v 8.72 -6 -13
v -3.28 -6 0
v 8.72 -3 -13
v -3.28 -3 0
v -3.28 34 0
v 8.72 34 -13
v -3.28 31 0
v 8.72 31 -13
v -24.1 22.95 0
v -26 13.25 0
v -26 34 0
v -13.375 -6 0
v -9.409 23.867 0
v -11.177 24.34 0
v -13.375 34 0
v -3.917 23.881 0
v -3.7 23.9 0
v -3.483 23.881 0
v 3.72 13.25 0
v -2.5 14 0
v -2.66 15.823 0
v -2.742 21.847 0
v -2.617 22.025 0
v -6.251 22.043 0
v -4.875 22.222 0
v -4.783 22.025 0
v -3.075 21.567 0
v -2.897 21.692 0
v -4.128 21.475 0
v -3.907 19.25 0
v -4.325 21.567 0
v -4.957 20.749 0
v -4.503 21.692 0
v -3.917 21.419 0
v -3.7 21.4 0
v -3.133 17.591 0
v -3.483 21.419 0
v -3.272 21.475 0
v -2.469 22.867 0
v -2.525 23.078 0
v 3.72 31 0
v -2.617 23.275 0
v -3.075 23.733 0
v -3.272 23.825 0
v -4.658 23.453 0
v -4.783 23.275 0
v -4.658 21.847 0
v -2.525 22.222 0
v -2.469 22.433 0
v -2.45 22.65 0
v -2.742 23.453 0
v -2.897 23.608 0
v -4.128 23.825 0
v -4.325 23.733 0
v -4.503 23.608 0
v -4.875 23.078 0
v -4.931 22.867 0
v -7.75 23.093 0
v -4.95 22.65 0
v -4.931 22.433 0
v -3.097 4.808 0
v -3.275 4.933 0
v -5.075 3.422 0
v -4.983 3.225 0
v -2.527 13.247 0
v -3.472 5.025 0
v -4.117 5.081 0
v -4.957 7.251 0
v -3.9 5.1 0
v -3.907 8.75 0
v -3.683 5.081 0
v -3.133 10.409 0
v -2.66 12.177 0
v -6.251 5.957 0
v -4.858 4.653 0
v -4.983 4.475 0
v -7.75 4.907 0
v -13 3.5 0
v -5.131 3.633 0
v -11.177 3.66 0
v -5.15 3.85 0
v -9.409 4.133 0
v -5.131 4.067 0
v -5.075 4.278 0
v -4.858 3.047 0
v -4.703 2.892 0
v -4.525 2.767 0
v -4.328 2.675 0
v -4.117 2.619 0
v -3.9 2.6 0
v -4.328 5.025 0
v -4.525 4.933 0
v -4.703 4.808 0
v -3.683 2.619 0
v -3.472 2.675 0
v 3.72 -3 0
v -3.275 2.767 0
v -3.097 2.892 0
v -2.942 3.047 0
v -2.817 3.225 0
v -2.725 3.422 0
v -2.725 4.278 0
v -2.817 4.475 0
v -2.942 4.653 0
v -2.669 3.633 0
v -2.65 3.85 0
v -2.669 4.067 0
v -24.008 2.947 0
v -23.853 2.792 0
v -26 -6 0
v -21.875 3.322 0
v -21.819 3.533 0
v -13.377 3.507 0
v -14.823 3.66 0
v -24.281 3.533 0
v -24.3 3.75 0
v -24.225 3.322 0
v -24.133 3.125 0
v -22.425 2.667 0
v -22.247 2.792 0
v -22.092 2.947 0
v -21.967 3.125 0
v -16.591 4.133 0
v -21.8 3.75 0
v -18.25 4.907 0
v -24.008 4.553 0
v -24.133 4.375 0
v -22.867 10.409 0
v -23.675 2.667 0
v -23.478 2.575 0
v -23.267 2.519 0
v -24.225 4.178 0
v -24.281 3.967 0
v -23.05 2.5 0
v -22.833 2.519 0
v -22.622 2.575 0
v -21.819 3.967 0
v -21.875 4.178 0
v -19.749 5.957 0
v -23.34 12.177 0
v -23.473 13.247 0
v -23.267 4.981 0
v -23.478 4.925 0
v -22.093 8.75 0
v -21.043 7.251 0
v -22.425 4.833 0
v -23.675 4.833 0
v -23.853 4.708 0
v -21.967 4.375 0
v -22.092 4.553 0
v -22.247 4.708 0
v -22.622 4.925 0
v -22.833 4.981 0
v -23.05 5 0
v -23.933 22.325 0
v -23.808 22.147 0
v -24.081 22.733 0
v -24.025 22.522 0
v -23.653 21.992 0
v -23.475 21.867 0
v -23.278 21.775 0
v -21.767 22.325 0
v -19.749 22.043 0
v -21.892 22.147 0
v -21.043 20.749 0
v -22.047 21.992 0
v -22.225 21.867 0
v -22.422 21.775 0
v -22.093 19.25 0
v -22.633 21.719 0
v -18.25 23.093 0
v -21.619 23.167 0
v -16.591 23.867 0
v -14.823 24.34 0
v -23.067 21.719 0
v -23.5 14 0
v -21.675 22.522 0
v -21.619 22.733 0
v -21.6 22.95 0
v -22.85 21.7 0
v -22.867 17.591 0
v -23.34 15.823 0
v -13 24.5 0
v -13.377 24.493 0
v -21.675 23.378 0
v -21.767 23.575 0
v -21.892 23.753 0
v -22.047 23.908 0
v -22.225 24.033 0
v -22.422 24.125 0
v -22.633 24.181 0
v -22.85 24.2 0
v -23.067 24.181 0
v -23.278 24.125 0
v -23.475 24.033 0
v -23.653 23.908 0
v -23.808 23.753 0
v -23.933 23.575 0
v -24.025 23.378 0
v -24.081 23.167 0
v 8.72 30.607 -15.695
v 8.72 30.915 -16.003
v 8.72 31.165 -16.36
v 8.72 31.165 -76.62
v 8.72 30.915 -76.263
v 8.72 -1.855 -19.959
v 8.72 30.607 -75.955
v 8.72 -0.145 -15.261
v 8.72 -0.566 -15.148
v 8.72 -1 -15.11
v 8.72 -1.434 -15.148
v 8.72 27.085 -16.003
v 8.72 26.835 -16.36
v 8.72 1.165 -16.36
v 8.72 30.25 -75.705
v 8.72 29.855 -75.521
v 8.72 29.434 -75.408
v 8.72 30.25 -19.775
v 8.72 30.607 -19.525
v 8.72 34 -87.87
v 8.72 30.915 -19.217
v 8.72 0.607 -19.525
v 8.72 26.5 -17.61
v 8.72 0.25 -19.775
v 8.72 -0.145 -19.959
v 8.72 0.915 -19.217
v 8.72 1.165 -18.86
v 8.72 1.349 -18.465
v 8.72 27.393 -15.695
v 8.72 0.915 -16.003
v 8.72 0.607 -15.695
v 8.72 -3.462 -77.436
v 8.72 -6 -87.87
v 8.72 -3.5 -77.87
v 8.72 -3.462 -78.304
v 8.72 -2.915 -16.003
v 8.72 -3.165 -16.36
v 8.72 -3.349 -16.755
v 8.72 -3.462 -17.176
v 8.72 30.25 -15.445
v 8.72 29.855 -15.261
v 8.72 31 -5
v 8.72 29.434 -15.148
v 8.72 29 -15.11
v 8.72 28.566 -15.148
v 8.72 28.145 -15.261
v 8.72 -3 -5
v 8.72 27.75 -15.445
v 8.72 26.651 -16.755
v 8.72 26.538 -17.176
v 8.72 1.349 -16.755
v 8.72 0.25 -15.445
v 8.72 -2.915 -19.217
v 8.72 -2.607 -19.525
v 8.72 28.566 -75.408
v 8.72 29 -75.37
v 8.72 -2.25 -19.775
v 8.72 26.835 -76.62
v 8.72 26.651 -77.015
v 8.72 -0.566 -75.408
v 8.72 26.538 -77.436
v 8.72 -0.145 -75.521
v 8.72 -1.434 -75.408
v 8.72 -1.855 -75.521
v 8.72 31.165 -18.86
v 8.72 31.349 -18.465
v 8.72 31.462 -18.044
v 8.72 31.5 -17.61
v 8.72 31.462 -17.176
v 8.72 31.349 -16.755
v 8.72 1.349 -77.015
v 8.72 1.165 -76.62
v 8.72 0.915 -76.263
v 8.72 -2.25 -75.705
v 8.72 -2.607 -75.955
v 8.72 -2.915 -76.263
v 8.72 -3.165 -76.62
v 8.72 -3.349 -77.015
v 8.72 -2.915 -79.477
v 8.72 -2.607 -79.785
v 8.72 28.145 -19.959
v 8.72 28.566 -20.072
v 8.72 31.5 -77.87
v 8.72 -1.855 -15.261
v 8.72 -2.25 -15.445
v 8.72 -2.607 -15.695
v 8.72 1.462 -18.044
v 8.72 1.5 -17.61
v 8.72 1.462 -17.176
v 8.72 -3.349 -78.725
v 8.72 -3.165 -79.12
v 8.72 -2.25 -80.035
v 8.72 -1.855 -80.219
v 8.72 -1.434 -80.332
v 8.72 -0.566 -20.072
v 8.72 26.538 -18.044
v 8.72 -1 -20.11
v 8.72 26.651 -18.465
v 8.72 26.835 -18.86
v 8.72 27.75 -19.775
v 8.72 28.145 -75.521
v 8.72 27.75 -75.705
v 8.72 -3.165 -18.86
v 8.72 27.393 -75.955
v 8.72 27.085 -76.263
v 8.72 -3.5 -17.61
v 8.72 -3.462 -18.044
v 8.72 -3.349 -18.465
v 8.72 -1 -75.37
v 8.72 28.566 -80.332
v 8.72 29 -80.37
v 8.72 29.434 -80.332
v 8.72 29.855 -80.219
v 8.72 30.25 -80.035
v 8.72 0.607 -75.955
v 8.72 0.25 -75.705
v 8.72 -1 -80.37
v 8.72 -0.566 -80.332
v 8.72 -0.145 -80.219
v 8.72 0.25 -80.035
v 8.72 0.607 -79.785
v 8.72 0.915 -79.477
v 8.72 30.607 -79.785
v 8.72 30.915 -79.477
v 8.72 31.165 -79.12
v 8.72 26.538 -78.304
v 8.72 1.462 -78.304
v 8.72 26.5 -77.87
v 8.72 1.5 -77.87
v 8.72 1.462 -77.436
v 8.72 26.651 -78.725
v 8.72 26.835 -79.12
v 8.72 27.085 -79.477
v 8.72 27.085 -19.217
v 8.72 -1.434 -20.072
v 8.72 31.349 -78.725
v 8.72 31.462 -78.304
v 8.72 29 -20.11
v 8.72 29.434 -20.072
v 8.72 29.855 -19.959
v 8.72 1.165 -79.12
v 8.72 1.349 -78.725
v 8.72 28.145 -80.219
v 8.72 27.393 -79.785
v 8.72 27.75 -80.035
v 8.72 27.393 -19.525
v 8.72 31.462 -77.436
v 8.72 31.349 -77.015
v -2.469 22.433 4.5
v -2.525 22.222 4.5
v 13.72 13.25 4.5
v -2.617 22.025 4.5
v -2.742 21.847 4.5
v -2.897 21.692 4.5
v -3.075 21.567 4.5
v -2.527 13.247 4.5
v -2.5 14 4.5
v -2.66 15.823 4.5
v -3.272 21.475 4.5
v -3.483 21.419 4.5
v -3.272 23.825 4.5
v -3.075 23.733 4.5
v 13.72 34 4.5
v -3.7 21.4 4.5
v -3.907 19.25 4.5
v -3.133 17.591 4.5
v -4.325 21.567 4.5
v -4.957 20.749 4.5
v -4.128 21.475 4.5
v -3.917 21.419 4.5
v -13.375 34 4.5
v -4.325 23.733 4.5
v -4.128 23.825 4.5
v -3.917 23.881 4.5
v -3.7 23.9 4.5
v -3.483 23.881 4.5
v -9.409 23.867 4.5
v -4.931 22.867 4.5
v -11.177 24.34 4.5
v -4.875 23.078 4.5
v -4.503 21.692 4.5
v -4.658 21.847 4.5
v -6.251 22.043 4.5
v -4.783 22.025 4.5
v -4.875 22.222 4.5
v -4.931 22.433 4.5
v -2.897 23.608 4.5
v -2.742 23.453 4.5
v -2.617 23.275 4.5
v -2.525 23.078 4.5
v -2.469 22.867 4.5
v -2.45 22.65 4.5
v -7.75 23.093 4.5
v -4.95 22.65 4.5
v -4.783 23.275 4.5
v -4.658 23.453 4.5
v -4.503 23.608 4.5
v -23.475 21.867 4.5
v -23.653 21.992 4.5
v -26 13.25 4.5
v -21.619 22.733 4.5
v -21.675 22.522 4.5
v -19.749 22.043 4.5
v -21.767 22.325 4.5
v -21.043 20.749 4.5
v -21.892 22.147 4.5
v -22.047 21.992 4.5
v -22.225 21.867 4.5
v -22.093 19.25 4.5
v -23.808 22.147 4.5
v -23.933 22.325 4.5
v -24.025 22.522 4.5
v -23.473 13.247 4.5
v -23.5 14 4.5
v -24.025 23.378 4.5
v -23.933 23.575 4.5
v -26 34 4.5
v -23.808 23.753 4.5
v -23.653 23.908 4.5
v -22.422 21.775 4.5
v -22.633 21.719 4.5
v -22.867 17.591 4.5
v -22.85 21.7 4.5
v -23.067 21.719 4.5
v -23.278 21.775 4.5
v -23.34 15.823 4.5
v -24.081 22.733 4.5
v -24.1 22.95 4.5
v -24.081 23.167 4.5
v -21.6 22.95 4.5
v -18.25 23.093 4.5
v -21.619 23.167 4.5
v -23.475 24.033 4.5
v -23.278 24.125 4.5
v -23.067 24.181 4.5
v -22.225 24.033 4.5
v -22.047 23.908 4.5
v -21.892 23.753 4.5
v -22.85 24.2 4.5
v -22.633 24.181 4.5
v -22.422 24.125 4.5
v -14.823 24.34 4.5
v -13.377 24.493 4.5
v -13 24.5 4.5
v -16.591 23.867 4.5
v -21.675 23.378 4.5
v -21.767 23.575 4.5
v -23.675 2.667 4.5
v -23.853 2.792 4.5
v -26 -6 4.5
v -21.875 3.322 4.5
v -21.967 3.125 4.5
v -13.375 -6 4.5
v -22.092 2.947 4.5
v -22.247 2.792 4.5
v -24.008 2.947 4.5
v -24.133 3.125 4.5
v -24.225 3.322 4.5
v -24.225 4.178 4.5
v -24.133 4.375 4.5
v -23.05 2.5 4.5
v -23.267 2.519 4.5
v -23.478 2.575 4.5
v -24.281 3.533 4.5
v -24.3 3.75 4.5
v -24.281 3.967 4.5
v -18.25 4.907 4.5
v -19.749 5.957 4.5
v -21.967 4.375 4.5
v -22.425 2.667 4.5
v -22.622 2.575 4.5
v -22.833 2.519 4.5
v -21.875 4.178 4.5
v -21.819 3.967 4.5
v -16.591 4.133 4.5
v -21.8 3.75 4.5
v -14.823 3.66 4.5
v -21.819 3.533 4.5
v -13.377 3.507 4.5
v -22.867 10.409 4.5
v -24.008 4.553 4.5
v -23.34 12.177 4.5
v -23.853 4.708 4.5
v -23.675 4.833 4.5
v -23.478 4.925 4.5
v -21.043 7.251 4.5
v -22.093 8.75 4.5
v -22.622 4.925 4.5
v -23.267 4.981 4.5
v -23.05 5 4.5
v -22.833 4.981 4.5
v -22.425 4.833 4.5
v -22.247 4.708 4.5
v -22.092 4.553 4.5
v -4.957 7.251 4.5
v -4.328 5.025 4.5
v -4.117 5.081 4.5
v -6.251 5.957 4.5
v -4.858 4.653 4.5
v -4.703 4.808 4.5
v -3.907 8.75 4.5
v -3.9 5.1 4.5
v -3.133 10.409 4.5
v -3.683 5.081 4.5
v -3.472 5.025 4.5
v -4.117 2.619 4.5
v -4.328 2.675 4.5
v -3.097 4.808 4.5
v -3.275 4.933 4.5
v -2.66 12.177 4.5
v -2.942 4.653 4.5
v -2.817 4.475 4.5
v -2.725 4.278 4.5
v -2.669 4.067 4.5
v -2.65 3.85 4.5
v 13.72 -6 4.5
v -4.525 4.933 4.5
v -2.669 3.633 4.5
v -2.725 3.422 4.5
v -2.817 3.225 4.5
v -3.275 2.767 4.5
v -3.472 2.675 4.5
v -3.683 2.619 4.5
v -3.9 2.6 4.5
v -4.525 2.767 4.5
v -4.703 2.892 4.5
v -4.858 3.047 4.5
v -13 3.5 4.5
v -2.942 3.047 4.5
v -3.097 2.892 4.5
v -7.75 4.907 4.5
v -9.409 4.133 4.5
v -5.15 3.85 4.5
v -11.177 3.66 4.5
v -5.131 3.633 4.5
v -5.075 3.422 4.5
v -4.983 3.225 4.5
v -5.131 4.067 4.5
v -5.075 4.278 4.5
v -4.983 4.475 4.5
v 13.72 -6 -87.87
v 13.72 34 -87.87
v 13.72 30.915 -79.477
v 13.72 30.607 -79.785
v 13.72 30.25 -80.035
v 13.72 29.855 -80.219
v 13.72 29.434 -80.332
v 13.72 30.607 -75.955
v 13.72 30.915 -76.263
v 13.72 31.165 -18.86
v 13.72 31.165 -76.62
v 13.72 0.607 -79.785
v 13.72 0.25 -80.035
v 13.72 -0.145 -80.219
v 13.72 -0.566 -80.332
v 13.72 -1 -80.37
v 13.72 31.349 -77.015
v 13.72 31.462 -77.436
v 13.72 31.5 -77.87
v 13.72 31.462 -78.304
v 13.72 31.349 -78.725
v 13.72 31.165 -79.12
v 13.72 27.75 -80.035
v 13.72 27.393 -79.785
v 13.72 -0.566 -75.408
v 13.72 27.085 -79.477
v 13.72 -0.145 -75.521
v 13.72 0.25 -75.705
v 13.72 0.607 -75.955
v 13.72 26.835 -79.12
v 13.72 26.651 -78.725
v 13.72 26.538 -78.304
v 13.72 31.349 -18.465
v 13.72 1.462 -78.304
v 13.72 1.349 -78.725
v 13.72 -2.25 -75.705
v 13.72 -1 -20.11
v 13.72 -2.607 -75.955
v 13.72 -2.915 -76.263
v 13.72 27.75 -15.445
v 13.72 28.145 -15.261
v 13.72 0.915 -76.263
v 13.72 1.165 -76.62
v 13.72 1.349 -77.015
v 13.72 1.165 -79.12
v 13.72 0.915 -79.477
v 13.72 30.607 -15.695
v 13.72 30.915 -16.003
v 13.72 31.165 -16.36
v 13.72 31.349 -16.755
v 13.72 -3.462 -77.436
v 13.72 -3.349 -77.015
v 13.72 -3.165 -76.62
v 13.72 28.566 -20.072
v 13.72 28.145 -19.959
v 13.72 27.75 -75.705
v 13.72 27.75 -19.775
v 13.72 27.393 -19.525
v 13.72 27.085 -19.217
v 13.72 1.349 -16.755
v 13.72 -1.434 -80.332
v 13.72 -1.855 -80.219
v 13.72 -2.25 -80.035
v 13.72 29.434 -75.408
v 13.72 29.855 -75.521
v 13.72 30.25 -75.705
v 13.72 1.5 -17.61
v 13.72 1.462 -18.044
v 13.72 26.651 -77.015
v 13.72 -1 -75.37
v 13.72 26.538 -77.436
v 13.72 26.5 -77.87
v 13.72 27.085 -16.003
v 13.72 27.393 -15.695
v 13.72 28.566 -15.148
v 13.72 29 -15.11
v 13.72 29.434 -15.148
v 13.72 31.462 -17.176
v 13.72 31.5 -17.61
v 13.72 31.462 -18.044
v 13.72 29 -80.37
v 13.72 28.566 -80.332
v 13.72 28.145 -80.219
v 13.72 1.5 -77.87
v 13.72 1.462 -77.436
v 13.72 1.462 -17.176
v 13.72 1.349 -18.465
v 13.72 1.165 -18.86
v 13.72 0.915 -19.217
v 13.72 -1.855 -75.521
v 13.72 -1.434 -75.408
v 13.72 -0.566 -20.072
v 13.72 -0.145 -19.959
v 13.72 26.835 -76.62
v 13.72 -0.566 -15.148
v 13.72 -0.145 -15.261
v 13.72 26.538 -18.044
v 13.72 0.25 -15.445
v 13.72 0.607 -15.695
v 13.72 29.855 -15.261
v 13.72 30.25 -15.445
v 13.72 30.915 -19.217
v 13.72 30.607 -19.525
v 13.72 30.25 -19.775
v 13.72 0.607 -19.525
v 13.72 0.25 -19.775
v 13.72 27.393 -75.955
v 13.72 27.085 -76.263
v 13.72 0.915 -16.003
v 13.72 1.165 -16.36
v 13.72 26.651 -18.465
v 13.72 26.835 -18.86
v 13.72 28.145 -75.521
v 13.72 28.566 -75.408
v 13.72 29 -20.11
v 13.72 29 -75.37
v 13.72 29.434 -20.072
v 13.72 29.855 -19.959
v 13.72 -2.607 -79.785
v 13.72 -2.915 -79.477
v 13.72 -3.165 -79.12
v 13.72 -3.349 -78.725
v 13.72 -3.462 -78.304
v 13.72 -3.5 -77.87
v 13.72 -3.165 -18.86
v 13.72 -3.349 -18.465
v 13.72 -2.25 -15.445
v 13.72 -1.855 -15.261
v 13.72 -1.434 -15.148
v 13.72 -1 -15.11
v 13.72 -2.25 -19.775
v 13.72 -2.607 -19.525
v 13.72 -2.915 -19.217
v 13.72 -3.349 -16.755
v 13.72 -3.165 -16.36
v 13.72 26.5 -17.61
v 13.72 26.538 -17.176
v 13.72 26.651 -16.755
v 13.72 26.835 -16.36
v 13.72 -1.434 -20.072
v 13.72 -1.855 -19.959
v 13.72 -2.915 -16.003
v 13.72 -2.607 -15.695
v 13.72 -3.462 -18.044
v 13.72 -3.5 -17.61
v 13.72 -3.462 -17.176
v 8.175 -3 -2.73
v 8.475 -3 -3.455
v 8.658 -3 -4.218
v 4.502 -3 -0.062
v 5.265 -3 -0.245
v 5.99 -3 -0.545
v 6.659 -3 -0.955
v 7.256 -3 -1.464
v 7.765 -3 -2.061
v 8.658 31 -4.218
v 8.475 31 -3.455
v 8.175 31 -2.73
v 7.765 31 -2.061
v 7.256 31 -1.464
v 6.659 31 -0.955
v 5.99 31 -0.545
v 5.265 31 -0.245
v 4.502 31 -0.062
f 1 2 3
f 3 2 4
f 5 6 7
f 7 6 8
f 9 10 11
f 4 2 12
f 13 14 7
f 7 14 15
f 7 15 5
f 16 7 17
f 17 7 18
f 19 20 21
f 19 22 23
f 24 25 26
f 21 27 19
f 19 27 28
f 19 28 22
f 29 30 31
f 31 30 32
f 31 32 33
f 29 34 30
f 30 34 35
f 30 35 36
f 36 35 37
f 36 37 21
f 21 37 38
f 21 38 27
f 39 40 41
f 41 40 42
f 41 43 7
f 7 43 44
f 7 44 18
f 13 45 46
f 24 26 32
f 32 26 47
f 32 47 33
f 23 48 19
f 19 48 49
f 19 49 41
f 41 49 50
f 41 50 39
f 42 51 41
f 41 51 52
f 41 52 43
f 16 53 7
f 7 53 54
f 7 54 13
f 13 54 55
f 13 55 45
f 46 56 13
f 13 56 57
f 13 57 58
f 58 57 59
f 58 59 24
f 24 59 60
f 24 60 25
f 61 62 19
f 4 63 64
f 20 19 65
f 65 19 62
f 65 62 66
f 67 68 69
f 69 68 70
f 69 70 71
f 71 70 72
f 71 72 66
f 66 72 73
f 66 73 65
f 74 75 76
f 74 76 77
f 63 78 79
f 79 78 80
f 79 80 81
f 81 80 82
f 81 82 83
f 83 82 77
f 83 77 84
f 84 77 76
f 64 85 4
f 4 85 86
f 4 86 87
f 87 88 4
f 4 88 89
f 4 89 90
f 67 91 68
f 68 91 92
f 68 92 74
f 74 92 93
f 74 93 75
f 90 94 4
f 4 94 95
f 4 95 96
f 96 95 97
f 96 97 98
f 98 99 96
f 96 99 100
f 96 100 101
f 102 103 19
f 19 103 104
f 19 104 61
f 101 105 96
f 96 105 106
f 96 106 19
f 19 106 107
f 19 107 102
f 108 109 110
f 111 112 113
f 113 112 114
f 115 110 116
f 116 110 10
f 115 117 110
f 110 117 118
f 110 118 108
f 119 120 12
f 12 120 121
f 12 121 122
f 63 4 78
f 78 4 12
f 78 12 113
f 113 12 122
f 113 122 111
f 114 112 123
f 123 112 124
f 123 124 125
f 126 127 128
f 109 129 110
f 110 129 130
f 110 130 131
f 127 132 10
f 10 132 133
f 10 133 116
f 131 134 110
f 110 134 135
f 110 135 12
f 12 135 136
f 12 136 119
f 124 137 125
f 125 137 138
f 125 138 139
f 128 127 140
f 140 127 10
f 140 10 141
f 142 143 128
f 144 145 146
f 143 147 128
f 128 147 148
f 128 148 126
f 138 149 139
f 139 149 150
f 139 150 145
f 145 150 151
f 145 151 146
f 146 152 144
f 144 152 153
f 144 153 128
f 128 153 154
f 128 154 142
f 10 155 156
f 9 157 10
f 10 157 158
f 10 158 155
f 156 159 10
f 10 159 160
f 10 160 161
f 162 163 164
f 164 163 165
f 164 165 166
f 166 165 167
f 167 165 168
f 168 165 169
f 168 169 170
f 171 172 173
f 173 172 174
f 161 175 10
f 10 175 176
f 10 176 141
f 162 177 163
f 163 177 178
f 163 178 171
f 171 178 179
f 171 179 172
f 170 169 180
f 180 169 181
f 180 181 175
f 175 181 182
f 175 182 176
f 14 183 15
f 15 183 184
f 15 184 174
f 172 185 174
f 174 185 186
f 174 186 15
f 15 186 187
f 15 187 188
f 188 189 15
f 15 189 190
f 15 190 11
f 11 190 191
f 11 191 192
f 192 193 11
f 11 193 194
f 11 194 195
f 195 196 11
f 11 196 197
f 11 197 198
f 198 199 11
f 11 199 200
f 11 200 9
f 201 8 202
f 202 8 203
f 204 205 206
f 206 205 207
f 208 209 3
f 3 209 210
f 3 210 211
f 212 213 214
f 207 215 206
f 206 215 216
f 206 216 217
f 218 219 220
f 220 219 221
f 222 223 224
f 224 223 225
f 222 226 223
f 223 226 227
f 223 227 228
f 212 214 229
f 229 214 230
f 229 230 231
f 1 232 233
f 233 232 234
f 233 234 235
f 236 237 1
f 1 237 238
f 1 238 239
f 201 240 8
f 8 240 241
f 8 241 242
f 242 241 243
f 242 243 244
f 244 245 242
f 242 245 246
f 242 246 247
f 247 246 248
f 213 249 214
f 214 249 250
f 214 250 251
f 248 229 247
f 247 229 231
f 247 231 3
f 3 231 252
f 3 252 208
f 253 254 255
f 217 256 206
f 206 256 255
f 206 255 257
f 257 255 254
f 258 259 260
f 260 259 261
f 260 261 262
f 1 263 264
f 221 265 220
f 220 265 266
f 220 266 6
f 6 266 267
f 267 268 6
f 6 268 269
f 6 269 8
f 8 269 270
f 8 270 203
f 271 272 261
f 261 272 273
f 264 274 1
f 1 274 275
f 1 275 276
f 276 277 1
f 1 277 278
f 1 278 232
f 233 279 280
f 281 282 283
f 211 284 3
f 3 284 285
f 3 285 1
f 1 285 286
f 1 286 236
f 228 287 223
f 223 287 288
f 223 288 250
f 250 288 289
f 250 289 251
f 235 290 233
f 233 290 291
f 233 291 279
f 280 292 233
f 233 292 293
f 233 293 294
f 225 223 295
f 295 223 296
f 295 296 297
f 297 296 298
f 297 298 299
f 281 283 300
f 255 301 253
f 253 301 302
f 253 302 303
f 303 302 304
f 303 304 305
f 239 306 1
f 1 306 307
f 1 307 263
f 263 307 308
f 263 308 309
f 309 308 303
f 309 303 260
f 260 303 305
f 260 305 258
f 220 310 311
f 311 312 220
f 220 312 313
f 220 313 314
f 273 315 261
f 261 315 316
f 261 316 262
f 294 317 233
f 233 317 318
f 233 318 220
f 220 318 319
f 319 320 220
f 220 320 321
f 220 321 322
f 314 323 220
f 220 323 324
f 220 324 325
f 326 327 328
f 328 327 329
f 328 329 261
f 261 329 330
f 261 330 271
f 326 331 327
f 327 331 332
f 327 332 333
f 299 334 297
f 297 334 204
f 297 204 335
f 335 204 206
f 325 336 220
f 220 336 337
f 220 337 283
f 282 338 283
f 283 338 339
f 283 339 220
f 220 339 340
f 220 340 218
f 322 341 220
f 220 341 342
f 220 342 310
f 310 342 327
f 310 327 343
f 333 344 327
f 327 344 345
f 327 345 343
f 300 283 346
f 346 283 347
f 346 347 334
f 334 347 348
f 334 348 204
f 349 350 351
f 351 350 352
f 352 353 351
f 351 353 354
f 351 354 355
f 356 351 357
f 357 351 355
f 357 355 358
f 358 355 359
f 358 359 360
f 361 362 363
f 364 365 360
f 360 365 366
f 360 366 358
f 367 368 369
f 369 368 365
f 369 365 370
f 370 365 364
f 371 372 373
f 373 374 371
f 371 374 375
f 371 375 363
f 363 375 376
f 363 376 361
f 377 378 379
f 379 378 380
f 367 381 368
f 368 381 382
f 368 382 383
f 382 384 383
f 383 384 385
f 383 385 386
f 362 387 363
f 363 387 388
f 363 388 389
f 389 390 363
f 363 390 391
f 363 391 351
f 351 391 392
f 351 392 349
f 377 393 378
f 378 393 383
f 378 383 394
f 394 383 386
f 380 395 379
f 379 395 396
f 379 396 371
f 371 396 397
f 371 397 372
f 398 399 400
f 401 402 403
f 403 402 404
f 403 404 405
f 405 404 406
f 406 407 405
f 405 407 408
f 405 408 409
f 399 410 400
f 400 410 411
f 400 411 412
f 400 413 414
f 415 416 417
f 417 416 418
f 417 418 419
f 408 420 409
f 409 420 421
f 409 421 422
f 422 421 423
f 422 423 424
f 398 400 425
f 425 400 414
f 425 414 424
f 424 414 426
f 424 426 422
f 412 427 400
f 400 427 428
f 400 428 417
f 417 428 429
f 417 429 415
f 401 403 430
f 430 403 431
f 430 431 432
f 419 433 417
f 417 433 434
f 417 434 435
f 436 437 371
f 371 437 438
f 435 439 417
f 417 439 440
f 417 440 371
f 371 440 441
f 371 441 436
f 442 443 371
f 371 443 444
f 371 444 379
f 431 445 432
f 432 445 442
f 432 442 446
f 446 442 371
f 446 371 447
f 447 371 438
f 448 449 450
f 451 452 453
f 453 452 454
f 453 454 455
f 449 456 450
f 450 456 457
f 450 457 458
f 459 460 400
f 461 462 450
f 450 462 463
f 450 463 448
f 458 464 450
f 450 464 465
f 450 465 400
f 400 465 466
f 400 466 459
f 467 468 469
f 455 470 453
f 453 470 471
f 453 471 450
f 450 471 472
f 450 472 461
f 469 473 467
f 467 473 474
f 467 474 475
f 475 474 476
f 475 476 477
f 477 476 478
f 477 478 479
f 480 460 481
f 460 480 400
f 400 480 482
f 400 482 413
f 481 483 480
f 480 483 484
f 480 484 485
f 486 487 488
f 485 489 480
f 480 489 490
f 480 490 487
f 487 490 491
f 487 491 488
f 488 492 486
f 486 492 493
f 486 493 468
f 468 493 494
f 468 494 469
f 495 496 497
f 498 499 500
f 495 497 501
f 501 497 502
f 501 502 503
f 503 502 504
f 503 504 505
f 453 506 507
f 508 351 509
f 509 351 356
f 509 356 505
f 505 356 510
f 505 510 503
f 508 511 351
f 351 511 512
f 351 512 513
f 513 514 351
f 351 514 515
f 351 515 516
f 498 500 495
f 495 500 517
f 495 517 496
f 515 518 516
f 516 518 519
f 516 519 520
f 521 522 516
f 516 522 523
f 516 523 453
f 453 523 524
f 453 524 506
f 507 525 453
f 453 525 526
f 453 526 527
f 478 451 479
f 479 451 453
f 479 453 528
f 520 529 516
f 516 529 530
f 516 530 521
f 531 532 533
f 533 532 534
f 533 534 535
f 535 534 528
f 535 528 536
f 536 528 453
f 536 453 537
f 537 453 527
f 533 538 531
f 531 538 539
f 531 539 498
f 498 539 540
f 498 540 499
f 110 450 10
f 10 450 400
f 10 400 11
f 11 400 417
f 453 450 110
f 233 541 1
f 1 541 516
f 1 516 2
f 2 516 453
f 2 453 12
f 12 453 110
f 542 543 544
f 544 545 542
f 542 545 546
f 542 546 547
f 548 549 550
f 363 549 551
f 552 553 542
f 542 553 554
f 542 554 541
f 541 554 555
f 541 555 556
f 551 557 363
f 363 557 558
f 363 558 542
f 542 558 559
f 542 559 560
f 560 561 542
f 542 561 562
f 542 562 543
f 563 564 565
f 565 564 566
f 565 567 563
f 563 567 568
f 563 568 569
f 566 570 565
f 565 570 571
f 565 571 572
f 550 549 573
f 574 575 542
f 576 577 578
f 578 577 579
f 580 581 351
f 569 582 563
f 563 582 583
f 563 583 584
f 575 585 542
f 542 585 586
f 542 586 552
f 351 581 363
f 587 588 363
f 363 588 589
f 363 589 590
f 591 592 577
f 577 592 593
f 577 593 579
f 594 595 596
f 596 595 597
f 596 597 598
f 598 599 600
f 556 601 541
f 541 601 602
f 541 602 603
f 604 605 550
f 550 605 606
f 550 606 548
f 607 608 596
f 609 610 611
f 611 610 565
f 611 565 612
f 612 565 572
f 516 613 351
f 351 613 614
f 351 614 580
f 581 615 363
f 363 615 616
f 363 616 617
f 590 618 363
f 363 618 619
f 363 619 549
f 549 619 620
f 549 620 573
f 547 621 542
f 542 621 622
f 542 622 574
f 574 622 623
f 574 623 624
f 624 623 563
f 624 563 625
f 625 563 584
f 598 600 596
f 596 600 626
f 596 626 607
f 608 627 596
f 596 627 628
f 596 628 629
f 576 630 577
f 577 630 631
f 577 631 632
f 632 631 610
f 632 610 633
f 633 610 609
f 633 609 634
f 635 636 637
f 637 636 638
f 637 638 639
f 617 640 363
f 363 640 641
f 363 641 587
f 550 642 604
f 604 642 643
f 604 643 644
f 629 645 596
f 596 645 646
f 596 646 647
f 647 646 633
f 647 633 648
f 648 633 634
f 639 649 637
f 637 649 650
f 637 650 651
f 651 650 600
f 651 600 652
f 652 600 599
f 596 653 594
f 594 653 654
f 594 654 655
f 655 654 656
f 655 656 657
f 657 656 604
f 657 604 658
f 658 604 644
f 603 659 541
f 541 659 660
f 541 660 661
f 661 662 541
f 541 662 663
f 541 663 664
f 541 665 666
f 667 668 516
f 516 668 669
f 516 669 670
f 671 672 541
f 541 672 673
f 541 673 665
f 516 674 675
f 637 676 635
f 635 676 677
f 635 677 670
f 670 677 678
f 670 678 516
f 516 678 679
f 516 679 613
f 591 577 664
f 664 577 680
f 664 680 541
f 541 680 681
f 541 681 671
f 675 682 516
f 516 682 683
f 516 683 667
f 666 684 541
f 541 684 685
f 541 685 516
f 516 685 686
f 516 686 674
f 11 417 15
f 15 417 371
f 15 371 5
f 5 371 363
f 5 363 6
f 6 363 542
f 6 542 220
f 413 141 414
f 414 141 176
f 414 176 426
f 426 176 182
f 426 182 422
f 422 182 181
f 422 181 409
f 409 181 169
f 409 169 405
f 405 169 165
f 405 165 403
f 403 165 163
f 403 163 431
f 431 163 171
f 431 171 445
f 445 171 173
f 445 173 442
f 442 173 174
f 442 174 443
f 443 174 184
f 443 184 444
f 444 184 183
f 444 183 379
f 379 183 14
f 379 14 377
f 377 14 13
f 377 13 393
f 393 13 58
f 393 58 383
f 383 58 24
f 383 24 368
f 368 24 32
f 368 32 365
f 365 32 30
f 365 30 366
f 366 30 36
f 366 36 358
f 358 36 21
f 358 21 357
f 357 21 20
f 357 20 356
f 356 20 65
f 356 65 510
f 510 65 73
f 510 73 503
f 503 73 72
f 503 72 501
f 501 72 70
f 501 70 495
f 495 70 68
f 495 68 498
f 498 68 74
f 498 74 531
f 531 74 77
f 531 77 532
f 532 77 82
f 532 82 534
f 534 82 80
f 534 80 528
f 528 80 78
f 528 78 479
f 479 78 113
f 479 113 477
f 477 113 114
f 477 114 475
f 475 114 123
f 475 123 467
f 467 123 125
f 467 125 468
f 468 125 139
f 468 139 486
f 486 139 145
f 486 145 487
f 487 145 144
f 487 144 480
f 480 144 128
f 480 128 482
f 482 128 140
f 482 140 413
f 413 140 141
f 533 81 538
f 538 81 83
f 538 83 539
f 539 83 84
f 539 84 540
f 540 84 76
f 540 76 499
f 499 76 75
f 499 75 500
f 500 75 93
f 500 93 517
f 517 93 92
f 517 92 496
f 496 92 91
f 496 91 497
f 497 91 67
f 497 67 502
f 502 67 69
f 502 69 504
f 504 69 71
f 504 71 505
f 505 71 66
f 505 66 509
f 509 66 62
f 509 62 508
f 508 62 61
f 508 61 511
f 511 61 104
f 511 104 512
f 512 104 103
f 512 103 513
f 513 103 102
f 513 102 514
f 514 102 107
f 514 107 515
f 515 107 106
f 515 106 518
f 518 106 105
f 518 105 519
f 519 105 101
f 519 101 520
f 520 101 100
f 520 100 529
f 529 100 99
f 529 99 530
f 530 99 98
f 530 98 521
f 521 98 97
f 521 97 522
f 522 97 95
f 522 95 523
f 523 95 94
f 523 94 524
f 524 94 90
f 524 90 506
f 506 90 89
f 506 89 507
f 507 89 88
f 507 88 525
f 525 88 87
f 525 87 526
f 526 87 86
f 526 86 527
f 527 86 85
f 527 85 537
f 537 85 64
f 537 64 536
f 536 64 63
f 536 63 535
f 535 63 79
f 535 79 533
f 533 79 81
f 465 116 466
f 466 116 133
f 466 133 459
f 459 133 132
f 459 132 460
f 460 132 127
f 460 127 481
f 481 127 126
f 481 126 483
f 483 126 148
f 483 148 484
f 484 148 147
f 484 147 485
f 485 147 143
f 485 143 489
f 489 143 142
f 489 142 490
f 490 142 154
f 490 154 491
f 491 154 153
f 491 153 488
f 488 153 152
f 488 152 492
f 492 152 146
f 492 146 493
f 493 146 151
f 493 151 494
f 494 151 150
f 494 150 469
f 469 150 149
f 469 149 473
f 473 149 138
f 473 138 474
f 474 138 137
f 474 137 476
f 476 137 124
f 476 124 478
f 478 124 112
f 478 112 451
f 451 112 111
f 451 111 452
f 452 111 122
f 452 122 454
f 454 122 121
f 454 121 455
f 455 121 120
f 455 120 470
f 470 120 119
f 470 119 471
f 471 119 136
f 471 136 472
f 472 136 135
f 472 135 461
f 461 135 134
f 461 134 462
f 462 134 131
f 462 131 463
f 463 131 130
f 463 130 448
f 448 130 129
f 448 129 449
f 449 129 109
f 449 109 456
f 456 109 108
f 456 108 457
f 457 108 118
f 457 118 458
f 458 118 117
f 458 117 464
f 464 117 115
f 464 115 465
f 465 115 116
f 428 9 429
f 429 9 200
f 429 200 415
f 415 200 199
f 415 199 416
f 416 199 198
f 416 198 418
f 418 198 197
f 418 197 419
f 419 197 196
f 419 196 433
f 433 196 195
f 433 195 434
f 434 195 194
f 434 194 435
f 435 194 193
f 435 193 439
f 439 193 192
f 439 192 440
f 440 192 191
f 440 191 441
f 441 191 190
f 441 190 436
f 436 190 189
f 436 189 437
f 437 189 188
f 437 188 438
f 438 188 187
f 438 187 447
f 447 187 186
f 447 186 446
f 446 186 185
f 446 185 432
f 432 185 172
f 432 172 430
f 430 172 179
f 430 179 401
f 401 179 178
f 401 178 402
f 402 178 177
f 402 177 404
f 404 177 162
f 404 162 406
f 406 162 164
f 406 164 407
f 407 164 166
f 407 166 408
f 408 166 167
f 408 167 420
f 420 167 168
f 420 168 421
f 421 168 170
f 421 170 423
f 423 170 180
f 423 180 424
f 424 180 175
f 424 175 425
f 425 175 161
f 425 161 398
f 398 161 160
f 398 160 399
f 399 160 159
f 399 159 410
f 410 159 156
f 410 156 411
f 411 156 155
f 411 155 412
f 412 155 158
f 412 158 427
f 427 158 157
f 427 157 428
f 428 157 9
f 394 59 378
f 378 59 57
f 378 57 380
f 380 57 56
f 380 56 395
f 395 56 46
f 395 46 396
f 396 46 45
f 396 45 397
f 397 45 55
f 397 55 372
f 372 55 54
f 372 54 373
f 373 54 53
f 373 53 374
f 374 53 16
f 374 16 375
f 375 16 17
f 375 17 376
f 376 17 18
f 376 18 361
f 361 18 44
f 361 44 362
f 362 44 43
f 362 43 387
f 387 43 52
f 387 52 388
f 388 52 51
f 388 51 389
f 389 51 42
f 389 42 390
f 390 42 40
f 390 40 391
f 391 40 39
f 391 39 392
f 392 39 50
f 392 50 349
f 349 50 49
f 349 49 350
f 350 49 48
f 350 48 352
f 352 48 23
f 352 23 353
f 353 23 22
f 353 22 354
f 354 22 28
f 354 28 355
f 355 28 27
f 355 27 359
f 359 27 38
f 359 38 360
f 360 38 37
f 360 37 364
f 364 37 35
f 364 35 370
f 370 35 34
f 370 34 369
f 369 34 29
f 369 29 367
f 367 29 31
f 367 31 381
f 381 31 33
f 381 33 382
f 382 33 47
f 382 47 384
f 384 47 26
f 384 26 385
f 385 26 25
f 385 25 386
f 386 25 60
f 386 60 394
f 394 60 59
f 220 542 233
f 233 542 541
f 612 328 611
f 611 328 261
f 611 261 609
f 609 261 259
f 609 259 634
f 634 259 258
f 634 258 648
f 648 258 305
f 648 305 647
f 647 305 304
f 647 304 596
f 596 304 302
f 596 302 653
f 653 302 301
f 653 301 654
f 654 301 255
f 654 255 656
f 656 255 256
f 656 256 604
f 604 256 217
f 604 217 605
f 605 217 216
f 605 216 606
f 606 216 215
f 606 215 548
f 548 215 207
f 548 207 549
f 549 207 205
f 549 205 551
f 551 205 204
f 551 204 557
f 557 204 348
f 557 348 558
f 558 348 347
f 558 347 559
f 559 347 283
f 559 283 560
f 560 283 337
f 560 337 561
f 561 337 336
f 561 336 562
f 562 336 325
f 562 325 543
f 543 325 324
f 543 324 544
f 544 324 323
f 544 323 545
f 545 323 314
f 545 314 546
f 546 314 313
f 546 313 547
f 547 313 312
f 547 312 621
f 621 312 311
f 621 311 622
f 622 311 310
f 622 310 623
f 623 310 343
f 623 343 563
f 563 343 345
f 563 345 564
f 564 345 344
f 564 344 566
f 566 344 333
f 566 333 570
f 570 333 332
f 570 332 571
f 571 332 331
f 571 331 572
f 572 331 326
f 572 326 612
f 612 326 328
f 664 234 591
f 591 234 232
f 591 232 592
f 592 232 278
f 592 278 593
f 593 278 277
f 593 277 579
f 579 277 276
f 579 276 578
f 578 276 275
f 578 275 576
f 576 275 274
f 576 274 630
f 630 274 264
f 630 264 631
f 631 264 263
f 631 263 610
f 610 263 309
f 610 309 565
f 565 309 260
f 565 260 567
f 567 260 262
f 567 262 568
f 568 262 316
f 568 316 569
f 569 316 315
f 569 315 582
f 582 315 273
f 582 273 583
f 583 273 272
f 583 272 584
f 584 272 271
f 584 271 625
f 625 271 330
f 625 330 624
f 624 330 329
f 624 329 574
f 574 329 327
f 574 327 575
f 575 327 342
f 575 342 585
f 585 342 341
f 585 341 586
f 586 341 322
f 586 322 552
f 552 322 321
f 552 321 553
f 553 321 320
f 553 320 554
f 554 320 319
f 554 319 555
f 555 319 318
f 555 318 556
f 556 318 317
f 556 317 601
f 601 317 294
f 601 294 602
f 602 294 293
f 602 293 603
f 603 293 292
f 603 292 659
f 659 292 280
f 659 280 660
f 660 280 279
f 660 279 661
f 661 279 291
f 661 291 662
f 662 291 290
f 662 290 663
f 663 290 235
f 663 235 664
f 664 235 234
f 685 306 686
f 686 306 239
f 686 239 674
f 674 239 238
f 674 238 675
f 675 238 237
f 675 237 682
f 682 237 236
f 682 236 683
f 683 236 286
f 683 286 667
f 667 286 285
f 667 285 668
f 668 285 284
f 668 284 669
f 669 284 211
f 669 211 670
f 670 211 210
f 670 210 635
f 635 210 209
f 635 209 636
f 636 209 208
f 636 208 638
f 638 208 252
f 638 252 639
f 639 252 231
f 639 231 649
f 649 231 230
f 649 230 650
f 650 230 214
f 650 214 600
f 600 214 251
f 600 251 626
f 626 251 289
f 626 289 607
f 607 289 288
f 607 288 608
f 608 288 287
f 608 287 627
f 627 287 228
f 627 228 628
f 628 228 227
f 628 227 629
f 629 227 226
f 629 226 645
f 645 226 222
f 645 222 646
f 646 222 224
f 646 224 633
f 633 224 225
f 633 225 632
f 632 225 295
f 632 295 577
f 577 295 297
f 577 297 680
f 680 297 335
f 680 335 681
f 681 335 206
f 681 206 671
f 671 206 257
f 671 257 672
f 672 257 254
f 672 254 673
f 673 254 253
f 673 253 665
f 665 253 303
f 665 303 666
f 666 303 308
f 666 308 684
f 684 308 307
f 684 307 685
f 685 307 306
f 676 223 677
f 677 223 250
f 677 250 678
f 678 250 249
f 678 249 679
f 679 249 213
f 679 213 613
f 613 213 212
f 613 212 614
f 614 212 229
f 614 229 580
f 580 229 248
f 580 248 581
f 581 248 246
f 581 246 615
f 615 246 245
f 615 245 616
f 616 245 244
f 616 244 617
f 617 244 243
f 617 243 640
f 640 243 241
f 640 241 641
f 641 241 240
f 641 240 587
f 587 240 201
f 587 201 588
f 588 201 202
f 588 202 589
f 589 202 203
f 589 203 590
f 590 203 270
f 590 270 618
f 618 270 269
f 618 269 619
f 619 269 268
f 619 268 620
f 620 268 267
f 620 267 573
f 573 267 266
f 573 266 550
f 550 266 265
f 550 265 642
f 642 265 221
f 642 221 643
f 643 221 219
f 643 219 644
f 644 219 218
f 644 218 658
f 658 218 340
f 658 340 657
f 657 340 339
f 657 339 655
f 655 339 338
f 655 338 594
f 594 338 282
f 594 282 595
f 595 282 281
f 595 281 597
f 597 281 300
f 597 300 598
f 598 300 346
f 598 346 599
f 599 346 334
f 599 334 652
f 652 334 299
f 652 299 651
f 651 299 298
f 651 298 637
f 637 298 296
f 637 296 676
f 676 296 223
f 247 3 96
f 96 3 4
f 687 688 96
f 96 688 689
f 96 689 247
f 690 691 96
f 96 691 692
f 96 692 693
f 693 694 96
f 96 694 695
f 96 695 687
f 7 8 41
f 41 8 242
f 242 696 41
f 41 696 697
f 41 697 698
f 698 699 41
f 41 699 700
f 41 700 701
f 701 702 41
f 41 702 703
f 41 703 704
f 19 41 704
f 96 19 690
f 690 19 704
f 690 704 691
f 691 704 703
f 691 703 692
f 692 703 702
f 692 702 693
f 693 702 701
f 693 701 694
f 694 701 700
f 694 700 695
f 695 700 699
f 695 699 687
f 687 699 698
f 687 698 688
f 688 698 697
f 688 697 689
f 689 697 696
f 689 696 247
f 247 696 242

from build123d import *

# Parameters (mm, degrees)
SKETCH1_R           = 10.5
SKETCH1_R_2         = 1.25
BOSS_EXTRUDE1_DEPTH = 4.5
SKETCH2_W           = 5
SKETCH2_H           = 40
BOSS_EXTRUDE2_DEPTH = 87.869807
SKETCH3_R           = 2.5
CUT_EXTRUDE1_DEPTH  = 6
BOSS_EXTRUDE3_DEPTH = 20
SKETCH5_W           = 12
SKETCH5_H           = 34
CUT_EXTRUDE2_DEPTH  = 87.869807
FILLET1_R           = 5


with BuildPart() as part:
    # Sketch1 → Boss-Extrude1 (new body)
    with BuildSketch(Plane.XY):
        Polygon((-26, -6), (0, -6), (13.72, -6), (13.72, 34), (0, 34), (-26, 34), align=None)
        with Locations((-13, 14)):
            Circle(SKETCH1_R, mode=Mode.SUBTRACT)
        with Locations((-3.9, 3.85)):
            Circle(SKETCH1_R_2, mode=Mode.SUBTRACT)
        with Locations((-23.05, 3.75)):
            Circle(SKETCH1_R_2, mode=Mode.SUBTRACT)
        with Locations((-22.85, 22.95)):
            Circle(SKETCH1_R_2, mode=Mode.SUBTRACT)
        with Locations((-3.7, 22.65)):
            Circle(SKETCH1_R_2, mode=Mode.SUBTRACT)
    extrude(amount=BOSS_EXTRUDE1_DEPTH)

    # Sketch2 → Boss-Extrude2 (add)
    with BuildSketch(Plane(origin=(0, 0, 0), x_dir=(-1, 0, 0), z_dir=(0, 0, -1))):
        with Locations((-11.22, 14)):
            Rectangle(SKETCH2_W, SKETCH2_H)
    extrude(amount=BOSS_EXTRUDE2_DEPTH)

    # Sketch3 → Cut-Extrude1 (cut, through all)
    with BuildSketch(Plane.ZY.offset(-8.72)):
        with Locations((-77.869807398, 29)):
            Circle(SKETCH3_R)
        with Locations((-77.869807398, -1)):
            Circle(SKETCH3_R)
        with Locations((-17.609807398, -1)):
            Circle(SKETCH3_R)
        with Locations((-17.609807398, 29)):
            Circle(SKETCH3_R)
    extrude(amount=-CUT_EXTRUDE1_DEPTH, mode=Mode.SUBTRACT)

    # Sketch4 → Boss-Extrude3 (add, symmetric)
    with BuildSketch(Plane(origin=(0, 14, 0), x_dir=(1, 0, 0), z_dir=(0, 1, 0))):
        Polygon((8.72, 13), (-3.28, 0), (8.72, 0), align=None)
    extrude(amount=BOSS_EXTRUDE3_DEPTH, both=True)

    # Sketch5 → Cut-Extrude2 (cut)
    with BuildSketch(Plane(origin=(0, 0, 0), x_dir=(-1, 0, 0), z_dir=(0, 0, -1))):
        with Locations((-2.72, 14)):
            Rectangle(SKETCH5_W, SKETCH5_H)
    extrude(amount=CUT_EXTRUDE2_DEPTH, mode=Mode.SUBTRACT)

    # Fillet1
    fillet1_edges = [part.edges().sort_by_distance(p)[0] for p in [
        (8.72, 14, 0),
    ]]
    fillet(fillet1_edges, radius=FILLET1_R)


solid = part.part
